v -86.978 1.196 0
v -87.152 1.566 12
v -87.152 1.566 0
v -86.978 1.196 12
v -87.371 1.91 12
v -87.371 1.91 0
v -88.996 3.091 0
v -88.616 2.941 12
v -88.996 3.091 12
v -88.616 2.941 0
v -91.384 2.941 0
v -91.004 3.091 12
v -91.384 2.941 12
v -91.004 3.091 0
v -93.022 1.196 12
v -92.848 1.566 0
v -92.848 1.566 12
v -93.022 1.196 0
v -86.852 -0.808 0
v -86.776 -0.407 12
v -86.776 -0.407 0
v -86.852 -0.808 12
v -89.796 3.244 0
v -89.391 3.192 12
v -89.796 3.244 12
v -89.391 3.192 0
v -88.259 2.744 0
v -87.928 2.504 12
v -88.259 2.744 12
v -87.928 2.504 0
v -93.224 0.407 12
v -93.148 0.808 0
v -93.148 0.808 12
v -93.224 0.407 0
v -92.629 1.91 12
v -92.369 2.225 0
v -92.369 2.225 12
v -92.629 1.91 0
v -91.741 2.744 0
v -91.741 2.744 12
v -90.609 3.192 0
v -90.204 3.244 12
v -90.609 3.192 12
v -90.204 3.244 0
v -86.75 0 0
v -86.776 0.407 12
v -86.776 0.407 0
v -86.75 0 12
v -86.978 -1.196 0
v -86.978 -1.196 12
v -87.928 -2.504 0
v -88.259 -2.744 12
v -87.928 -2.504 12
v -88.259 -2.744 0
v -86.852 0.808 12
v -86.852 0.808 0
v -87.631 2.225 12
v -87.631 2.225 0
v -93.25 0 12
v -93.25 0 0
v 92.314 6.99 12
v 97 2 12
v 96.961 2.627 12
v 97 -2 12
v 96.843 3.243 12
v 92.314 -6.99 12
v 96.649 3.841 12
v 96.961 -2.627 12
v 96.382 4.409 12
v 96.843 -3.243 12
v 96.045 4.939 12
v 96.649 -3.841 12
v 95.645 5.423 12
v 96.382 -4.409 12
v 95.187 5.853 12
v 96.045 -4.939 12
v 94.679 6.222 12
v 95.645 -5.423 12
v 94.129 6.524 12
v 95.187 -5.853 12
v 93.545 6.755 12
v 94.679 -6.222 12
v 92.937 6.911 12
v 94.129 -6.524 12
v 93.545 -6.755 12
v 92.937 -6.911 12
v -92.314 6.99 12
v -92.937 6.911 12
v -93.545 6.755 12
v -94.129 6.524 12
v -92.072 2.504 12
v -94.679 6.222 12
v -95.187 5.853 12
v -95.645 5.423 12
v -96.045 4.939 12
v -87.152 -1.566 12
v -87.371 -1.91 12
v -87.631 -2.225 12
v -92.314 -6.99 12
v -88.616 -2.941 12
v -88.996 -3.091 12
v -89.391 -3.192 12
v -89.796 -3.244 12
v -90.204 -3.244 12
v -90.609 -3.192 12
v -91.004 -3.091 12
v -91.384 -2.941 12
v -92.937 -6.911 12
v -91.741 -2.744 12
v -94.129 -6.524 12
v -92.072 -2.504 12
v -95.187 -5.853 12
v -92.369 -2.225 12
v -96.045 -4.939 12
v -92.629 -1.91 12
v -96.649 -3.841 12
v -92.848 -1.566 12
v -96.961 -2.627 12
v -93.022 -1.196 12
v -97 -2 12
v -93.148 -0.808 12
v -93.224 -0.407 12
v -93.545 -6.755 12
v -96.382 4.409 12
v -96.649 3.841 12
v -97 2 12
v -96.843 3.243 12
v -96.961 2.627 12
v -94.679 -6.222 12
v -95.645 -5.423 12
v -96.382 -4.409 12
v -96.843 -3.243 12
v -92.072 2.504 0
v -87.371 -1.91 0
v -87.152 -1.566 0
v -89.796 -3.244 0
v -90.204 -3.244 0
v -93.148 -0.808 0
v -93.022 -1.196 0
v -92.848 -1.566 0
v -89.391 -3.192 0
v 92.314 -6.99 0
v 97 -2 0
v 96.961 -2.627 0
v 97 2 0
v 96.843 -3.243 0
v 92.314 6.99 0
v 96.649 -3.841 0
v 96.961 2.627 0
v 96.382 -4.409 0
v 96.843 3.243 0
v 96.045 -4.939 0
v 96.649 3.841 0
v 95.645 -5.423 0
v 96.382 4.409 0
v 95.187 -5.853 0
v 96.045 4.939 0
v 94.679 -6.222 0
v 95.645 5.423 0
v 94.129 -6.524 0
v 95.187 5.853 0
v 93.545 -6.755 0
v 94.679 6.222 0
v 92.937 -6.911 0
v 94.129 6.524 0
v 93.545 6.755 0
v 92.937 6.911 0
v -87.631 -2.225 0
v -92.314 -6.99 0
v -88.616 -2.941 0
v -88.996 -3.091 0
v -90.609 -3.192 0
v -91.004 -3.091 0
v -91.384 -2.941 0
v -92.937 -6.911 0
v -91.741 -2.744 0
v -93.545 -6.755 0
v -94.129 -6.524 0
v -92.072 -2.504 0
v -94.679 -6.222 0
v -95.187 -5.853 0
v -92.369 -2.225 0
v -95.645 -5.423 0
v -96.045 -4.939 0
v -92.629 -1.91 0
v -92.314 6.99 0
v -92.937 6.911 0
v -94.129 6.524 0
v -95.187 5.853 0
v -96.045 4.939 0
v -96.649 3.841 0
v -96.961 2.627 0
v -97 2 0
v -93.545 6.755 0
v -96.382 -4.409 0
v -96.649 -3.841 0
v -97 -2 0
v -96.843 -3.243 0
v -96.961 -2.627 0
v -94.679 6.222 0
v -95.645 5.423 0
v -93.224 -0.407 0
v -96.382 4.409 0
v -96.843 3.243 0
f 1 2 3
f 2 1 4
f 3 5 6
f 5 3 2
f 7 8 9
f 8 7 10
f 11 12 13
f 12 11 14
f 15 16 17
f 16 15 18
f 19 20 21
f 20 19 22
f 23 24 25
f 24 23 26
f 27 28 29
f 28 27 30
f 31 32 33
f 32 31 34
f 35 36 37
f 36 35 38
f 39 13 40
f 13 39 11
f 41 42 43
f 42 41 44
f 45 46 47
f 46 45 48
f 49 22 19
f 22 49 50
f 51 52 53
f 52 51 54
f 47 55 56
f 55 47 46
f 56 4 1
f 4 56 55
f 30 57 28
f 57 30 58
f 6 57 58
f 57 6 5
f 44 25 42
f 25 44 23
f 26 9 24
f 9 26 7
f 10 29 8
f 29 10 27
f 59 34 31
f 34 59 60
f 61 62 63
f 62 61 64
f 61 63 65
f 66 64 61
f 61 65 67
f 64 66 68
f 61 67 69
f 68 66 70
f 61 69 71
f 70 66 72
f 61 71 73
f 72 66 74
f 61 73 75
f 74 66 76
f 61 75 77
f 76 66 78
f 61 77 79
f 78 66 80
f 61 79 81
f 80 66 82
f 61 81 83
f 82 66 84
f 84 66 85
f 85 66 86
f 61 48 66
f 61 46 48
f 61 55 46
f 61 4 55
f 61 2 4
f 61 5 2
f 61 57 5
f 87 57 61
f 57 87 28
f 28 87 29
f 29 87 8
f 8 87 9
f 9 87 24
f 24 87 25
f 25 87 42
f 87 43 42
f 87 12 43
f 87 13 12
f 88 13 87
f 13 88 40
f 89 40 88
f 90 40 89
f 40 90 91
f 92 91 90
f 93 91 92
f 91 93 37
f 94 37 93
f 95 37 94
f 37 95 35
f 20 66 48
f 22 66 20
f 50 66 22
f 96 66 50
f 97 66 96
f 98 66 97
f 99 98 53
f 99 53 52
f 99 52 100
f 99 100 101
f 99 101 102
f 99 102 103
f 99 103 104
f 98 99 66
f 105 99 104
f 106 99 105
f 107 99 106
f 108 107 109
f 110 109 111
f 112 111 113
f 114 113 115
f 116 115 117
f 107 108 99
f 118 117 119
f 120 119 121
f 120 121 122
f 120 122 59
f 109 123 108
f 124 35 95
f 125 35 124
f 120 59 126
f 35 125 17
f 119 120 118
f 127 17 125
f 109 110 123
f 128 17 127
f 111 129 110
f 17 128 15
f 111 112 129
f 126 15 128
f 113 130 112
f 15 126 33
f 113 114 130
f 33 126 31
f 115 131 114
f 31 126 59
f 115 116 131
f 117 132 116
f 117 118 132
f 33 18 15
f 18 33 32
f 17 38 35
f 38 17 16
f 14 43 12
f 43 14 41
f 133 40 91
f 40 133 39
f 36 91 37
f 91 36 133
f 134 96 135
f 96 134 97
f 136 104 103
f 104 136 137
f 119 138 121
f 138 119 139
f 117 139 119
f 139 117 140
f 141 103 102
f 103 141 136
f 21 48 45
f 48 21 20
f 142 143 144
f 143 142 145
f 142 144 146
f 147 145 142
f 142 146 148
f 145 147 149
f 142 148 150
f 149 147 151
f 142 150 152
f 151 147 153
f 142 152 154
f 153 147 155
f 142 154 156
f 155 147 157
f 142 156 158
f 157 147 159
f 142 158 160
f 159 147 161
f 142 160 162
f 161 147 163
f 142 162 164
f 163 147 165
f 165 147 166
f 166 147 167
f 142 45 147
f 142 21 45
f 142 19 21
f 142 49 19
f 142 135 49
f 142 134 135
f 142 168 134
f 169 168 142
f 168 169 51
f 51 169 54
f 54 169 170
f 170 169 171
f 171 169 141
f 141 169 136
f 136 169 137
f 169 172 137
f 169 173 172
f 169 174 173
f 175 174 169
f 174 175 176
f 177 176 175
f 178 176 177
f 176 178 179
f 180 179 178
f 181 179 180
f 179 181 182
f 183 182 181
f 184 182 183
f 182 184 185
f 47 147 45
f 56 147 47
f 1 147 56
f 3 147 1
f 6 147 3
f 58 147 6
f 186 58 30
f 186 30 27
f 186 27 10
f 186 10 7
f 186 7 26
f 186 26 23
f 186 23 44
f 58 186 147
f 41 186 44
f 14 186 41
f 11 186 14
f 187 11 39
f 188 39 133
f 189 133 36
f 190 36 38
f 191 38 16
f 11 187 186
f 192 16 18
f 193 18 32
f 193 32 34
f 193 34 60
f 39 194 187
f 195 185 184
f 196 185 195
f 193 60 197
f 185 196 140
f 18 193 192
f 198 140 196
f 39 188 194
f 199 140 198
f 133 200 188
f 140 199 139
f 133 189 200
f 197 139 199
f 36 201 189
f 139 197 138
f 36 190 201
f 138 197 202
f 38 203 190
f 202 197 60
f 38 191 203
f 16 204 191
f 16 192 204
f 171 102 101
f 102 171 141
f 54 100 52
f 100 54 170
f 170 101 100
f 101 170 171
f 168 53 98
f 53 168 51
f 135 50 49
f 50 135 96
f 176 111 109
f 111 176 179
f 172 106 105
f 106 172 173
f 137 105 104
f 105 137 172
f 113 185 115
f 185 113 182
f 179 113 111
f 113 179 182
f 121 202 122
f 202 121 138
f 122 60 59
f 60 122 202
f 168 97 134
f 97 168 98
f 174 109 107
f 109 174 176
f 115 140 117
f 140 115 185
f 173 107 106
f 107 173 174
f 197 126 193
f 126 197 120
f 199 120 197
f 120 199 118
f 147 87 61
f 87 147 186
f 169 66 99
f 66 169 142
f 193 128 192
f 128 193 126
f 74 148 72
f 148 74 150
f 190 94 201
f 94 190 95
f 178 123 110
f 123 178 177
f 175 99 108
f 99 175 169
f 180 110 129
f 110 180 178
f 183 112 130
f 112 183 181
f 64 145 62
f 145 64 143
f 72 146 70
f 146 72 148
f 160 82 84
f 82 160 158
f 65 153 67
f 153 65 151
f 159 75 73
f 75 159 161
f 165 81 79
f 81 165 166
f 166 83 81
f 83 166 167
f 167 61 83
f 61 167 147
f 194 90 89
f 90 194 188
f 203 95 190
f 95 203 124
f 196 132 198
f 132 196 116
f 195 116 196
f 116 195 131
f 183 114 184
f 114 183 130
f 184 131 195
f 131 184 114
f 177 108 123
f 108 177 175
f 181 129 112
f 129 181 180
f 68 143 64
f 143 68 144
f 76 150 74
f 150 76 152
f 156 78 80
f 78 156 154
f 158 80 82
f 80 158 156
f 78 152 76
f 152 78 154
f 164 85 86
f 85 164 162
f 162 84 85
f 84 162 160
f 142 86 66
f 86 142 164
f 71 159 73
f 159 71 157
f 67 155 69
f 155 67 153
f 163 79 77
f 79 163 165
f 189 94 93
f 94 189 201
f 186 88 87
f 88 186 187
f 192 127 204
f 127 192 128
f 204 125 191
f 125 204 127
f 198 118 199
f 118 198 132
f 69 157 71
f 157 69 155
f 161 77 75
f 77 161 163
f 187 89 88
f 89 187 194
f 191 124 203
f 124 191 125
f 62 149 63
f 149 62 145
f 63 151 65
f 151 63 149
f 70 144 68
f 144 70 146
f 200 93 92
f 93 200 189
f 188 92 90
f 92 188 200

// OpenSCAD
$fn = 50;


difference() {
	union() {
		hull() {
			translate(v = [-92.0000000000, 2.0000000000, 0]) {
				cylinder(h = 12, r = 5);
			}
			translate(v = [92.0000000000, 2.0000000000, 0]) {
				cylinder(h = 12, r = 5);
			}
			translate(v = [-92.0000000000, -2.0000000000, 0]) {
				cylinder(h = 12, r = 5);
			}
			translate(v = [92.0000000000, -2.0000000000, 0]) {
				cylinder(h = 12, r = 5);
			}
		}
	}
	union() {
		translate(v = [-90.0000000000, 0.0000000000, 0]) {
			cylinder(h = 12, r = 3.2500000000);
		}
		translate(v = [-90.0000000000, 0.0000000000, 0]) {
			cylinder(h = 12, r = 1.8000000000);
		}
		translate(v = [-90.0000000000, 0.0000000000, 0]) {
			cylinder(h = 12, r = 1.8000000000);
		}
		translate(v = [-90.0000000000, 0.0000000000, 0]) {
			cylinder(h = 12, r = 1.8000000000);
		}
	}
}
